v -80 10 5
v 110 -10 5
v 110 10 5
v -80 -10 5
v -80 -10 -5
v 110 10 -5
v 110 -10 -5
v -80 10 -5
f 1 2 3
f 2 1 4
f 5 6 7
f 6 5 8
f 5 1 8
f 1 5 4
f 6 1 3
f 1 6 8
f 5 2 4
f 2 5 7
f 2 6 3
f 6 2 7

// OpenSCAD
// Define dimensions for the rectangular block
block_length = 40;  // Length of the block
block_width = 20;   // Width of the block
block_height = 10;  // Height of the block

// Function to create a rectangular block
module rectangular_block(length, width, height) {
    cube([length, width, height], center = true);
}

// Generate six rectangular blocks positioned independently
translate([-60, 0, 0]) rectangular_block(block_length, block_width, block_height);  // Block 1: Corrected length to match original model
translate([-30, 0, 0]) rectangular_block(block_length, block_width, block_height);  // Block 2: Removed rotation to ensure parallel alignment
translate([0, 0, 0]) rectangular_block(block_length, block_width, block_height);  // Block 3: Adjusted height to match original model
translate([30, 0, 0]) rectangular_block(block_length, block_width, block_height);  // Block 4: Corrected position for flush alignment
translate([60, 0, 0]) rectangular_block(block_length, block_width, block_height);  // Block 5: Corrected width to match original model
translate([90, 0, 0]) rectangular_block(block_length, block_width, block_height);  // Block 6: Removed rotation for uniform orientation
